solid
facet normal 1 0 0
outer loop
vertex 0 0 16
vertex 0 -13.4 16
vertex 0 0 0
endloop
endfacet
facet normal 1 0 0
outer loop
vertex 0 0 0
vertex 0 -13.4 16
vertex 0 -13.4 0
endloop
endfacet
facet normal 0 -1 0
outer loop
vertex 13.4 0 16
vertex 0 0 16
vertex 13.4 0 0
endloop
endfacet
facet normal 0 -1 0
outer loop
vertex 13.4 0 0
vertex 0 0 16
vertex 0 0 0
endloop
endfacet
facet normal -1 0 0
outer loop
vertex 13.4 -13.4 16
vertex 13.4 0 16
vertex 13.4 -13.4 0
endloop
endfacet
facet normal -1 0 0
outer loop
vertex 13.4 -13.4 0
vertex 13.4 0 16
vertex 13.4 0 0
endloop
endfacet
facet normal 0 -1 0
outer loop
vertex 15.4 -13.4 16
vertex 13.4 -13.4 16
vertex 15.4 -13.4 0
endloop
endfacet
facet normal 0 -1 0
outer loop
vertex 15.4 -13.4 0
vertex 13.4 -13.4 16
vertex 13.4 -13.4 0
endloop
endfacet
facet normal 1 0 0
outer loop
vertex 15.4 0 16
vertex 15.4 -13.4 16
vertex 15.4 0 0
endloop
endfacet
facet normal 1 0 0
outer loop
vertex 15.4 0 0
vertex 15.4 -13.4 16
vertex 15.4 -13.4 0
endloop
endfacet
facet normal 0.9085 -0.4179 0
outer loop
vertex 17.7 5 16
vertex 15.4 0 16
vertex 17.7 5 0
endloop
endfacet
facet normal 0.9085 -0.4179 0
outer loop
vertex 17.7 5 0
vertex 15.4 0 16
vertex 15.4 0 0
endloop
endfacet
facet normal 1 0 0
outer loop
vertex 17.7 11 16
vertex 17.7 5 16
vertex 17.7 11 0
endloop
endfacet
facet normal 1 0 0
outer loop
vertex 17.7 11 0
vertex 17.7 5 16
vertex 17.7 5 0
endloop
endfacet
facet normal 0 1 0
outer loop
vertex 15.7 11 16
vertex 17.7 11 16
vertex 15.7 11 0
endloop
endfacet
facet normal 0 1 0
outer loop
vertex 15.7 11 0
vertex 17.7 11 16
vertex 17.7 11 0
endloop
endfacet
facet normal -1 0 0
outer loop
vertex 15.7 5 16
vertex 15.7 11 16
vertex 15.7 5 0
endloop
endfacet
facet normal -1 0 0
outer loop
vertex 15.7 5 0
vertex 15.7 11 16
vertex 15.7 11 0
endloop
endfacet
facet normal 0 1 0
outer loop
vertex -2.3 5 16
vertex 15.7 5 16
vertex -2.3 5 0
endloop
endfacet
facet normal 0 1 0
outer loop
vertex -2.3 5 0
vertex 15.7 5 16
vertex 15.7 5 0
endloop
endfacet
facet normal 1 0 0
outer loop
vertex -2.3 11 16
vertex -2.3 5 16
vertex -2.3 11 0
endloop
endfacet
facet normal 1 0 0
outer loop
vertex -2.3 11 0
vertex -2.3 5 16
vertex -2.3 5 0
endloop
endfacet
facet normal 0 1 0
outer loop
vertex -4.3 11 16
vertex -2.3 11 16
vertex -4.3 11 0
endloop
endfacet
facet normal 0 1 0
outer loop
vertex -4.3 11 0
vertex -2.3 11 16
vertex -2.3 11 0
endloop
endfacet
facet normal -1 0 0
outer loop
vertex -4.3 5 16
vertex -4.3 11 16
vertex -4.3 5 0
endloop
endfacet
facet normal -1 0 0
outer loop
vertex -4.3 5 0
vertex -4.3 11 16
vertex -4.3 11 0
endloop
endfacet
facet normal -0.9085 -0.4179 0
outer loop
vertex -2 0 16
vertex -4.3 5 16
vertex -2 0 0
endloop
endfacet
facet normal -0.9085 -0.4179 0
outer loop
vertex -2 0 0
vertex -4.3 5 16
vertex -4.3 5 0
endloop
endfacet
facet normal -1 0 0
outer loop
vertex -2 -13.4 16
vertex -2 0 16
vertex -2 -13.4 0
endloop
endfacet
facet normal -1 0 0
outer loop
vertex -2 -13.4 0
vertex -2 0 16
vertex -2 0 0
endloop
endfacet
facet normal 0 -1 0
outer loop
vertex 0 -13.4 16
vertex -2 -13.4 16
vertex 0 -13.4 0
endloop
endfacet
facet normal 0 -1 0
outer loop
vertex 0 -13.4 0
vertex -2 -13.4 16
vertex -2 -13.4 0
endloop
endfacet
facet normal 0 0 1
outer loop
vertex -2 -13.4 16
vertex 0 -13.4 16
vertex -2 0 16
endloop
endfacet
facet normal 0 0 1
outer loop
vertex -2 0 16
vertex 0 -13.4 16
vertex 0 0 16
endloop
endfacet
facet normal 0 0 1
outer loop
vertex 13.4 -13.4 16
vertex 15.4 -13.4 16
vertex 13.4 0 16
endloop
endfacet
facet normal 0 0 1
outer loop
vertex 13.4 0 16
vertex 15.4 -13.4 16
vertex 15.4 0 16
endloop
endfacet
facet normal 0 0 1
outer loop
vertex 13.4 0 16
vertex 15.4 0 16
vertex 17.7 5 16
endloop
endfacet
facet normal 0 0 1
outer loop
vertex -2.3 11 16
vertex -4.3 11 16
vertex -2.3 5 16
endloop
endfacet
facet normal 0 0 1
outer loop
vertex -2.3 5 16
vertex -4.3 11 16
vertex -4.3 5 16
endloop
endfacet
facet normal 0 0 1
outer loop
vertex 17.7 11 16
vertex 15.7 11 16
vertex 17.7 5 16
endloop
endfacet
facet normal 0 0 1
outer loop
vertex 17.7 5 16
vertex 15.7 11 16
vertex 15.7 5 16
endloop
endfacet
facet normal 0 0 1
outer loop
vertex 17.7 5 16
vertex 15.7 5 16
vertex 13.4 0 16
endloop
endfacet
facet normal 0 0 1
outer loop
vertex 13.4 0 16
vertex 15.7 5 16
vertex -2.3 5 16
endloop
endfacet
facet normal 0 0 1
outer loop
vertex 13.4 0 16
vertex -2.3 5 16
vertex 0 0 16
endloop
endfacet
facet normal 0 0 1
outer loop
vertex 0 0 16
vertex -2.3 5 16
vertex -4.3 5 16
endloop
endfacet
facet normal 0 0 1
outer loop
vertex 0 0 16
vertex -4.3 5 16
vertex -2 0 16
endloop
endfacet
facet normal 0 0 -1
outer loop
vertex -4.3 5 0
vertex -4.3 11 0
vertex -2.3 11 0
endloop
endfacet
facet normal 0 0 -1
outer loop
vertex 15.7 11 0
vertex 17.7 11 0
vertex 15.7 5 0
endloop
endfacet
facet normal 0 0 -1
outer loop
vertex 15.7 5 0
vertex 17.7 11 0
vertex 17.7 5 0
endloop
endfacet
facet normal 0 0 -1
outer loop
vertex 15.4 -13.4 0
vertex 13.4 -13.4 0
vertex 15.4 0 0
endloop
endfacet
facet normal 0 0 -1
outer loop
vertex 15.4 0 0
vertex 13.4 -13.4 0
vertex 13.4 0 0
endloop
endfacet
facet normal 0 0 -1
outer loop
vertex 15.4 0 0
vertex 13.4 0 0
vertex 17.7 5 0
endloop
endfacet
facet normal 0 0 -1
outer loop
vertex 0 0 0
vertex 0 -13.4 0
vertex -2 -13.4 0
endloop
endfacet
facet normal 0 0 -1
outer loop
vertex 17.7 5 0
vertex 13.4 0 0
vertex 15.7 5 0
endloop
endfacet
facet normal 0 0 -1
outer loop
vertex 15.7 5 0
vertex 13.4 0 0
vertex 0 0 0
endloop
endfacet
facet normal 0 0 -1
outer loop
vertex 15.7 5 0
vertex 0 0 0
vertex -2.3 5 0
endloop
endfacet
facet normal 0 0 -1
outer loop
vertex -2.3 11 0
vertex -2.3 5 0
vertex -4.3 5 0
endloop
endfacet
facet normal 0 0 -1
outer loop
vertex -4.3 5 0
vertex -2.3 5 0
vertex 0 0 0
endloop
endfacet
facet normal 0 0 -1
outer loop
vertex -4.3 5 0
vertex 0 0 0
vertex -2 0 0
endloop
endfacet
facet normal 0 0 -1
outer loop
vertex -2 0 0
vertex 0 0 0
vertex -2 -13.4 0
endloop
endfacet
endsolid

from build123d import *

# Parameters (mm, degrees)
CROQUIS1_W              = 2
CROQUIS1_H              = 13.4
CROQUIS1_H_2            = 6
SALIENTE_EXTRUIR1_DEPTH = 16


with BuildPart() as part:
    # Croquis1 → Saliente-Extruir1 (new body)
    with BuildSketch(Plane.XY):
        with Locations((-1, -6.7)):
            Rectangle(CROQUIS1_W, CROQUIS1_H)
        Polygon((15.4, 5), (6.7, 5), (-2, 5), (-2, 0), (0, 0), (13.4, 0), (15.4, 0), align=None)
        with Locations((14.4, -6.7)):
            Rectangle(CROQUIS1_W, CROQUIS1_H)
        Polygon((15.7, 5), (15.4, 5), (15.4, 0), (17.7, 5), align=None)
        with Locations((16.7, 8)):
            Rectangle(CROQUIS1_W, CROQUIS1_H_2)
        Polygon((-2, 0), (-2, 5), (-2.3, 5), (-4.3, 5), align=None)
        with Locations((-3.3, 8)):
            Rectangle(CROQUIS1_W, CROQUIS1_H_2)
    extrude(amount=SALIENTE_EXTRUIR1_DEPTH)


solid = part.part
